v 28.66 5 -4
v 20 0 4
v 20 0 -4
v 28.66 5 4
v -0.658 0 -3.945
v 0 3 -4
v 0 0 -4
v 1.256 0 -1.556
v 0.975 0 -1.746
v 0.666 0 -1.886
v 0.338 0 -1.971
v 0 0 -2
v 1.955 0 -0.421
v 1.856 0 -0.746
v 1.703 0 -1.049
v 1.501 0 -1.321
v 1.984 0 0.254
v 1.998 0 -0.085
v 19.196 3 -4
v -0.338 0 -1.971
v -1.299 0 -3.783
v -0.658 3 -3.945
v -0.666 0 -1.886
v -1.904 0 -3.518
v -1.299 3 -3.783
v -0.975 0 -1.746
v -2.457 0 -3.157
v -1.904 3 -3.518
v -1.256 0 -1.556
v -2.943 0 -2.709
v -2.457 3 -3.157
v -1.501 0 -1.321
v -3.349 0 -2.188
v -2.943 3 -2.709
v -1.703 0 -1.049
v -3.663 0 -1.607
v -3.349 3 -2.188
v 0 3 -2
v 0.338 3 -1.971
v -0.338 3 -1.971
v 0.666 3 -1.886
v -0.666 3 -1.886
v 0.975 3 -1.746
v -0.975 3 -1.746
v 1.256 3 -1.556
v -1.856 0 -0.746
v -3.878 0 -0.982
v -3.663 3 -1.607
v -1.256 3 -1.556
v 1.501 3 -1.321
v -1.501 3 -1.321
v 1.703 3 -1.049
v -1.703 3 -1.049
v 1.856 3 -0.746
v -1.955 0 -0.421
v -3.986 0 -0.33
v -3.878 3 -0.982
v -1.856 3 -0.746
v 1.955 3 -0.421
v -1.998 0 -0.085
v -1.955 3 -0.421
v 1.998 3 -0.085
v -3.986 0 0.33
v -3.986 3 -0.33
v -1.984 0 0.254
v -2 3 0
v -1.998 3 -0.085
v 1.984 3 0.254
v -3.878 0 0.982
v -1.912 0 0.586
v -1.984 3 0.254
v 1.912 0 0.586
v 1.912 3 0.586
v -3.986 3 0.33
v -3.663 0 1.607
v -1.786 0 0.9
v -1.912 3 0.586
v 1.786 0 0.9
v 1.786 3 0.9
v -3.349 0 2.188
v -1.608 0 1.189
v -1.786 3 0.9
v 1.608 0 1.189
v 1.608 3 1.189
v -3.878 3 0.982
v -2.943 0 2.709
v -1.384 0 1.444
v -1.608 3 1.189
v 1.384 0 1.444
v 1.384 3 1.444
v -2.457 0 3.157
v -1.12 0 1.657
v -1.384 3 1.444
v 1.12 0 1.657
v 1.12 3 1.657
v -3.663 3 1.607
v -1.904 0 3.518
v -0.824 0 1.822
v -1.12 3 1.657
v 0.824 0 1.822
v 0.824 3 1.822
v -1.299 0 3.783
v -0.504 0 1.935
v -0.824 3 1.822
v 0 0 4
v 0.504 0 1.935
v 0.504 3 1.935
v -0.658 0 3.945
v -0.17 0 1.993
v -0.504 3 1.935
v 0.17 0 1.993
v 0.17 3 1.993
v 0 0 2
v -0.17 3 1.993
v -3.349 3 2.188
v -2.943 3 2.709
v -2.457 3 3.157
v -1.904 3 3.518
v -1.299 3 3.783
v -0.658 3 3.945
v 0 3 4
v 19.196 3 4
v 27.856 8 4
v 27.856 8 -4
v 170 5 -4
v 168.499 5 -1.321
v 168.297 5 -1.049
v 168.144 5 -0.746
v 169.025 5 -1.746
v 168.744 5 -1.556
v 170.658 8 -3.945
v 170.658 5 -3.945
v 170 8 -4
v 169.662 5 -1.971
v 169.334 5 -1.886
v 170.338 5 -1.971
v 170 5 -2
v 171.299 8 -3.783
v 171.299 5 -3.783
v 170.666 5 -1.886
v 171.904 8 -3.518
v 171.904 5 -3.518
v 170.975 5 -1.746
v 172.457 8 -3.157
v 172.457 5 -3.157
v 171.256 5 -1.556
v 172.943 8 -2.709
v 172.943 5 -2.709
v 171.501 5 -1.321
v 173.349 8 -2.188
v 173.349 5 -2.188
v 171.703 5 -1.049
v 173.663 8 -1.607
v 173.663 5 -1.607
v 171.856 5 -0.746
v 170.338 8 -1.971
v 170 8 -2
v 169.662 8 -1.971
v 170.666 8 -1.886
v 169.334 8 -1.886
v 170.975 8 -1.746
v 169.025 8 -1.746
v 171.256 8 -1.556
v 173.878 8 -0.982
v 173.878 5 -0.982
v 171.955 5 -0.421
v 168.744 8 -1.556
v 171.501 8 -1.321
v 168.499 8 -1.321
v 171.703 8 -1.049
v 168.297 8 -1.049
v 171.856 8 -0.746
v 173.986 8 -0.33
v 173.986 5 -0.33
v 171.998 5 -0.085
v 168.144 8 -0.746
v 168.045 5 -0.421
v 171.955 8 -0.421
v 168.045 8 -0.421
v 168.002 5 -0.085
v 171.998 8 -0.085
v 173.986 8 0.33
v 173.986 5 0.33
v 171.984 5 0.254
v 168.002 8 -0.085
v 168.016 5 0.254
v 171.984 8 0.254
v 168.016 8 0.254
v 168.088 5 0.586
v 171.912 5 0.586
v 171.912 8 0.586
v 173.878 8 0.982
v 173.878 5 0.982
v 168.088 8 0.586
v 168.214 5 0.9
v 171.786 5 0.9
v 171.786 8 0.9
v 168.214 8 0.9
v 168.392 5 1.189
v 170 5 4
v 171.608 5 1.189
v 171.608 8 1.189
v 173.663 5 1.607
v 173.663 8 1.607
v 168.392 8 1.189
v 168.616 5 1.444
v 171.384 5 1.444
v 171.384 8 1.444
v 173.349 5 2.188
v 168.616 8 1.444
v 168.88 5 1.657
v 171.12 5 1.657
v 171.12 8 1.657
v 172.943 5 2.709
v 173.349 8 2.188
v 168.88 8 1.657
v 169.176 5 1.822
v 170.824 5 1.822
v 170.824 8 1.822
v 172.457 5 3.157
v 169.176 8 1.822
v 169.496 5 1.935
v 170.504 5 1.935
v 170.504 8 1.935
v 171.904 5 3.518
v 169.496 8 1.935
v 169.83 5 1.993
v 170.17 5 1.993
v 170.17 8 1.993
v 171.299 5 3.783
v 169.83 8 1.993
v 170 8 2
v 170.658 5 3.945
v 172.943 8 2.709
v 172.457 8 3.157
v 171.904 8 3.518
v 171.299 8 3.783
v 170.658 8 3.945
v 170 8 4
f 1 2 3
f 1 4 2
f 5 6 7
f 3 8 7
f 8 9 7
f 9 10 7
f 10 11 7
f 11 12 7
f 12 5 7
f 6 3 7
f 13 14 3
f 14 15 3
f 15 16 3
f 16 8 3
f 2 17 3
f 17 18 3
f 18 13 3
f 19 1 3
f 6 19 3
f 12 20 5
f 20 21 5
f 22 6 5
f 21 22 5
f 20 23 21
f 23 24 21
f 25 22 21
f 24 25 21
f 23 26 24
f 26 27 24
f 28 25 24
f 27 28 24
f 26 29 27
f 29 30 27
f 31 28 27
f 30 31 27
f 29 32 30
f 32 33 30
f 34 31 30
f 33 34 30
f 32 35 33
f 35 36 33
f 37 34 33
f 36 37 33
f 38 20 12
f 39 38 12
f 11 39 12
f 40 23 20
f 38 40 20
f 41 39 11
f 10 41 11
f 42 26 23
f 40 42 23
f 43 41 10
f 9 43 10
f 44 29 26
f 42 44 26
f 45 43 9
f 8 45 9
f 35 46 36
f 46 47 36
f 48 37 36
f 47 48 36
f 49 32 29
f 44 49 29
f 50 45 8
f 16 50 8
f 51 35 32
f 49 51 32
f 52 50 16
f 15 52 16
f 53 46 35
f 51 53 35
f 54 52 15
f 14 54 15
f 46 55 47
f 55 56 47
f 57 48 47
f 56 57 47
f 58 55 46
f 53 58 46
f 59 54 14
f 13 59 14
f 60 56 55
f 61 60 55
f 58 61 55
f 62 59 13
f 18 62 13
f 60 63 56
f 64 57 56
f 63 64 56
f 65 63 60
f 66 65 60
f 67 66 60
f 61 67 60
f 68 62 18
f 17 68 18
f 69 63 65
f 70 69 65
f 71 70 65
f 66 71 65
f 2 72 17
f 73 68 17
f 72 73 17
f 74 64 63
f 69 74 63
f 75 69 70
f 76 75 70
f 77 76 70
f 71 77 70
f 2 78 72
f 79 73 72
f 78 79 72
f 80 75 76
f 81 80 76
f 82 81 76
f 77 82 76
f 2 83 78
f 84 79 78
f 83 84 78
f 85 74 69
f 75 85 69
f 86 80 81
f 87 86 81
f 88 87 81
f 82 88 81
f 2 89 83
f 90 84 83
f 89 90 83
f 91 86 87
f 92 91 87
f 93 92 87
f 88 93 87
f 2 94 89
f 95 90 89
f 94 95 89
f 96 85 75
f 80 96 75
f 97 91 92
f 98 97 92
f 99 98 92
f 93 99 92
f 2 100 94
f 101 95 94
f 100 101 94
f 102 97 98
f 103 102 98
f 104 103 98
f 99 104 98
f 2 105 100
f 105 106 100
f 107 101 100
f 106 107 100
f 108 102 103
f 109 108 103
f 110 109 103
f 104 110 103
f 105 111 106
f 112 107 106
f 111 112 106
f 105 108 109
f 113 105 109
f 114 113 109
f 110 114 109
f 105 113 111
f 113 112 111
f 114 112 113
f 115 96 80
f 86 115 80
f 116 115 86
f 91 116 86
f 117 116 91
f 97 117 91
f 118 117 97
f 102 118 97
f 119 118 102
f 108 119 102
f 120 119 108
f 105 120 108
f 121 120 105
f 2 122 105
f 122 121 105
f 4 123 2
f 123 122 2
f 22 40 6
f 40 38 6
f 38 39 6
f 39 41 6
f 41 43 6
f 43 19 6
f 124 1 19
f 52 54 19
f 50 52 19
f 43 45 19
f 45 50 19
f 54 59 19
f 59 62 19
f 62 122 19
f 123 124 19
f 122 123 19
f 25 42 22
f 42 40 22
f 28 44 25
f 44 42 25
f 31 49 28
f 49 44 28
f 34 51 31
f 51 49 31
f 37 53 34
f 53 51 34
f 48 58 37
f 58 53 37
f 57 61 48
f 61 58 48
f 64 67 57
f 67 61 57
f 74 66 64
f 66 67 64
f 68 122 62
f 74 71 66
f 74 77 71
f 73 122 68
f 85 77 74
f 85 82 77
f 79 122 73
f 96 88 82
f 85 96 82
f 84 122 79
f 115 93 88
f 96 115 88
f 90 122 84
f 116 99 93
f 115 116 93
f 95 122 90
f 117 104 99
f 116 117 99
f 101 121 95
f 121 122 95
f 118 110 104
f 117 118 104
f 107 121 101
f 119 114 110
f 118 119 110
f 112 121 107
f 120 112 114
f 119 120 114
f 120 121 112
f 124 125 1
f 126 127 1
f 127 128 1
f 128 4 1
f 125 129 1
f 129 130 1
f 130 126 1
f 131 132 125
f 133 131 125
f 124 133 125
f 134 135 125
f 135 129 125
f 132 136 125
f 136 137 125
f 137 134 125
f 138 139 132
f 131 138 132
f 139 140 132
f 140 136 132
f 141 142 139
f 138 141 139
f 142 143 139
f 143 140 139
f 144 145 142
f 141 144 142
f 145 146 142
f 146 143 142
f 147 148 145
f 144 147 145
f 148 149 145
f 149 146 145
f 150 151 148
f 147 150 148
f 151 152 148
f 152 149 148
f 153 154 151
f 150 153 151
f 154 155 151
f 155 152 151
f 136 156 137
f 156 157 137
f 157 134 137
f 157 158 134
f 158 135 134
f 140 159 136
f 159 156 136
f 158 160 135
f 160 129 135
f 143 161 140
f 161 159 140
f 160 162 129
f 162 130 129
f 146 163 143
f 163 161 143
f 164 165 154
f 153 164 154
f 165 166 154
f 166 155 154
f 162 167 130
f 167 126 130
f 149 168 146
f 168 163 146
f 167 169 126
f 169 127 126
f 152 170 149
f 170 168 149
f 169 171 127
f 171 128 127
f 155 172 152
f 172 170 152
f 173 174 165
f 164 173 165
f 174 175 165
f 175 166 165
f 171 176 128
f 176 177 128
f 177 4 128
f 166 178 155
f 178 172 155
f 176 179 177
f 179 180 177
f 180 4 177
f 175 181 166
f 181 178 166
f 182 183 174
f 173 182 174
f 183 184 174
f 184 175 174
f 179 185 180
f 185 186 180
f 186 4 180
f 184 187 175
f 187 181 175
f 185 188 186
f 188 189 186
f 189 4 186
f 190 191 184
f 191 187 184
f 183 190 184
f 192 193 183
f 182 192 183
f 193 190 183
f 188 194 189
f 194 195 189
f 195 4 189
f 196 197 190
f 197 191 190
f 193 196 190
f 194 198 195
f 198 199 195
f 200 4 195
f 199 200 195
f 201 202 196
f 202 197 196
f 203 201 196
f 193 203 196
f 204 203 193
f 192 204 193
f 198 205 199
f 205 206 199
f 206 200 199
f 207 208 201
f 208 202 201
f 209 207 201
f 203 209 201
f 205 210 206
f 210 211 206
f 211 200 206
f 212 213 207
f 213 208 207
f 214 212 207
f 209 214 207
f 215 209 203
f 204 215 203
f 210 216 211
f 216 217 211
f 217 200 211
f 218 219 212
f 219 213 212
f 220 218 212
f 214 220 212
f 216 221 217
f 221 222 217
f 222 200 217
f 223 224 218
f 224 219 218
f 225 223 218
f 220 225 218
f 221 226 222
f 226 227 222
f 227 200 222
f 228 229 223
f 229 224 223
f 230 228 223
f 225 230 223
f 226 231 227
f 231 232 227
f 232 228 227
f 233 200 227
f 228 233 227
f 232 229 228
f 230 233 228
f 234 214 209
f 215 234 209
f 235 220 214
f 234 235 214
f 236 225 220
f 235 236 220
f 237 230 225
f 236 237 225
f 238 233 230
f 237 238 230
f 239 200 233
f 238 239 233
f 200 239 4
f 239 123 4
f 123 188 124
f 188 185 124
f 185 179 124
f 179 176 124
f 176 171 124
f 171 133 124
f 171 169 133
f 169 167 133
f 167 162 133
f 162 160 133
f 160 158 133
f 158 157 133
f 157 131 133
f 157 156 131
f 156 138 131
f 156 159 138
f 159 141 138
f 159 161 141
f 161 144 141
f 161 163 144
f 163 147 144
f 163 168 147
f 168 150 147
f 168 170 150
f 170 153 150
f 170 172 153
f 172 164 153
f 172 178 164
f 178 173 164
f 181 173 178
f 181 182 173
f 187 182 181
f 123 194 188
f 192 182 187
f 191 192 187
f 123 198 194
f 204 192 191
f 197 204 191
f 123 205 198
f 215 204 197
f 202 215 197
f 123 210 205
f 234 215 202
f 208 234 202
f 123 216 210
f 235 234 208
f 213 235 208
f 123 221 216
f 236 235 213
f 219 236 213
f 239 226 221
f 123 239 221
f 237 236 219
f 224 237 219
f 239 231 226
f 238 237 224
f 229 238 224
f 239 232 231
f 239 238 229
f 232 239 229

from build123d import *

# Parameters (mm, degrees)
SKETCH1_R           = 2
BOSS_EXTRUDE1_DEPTH = 8
SKETCH2_W           = 4
SKETCH2_H           = 2
SKETCH2_H_2         = 3
CUT_EXTRUDE1_DEPTH  = 8


with BuildPart() as part:
    # Sketch1 → Boss-Extrude1 (new body)
    with BuildSketch(Plane(origin=(0, 0, 0), x_dir=(1, 0, 0), z_dir=(0, 1, 0))):
        with BuildLine():
            Line((170, 4), (0, 4))
            ThreePointArc((0, 4), (-4, 0), (0, -4))
            Line((0, -4), (170, -4))
            ThreePointArc((170, -4), (174, 0), (170, 4))
        make_face()
        with Locations(Location((0, 0, 0), (0, 0, 270))):
            Circle(SKETCH1_R, mode=Mode.SUBTRACT)
        with Locations(Location((170, 0, 0), (0, 0, 270))):
            Circle(SKETCH1_R, mode=Mode.SUBTRACT)
    extrude(amount=BOSS_EXTRUDE1_DEPTH)

    # Sketch2 → Cut-Extrude1 (cut)
    with BuildSketch(Plane.XY.offset(4)):
        Polygon((22.660254038, 5), (0, 5), (0, 3), (19.196152423, 3), align=None)
        with Locations((-2, 4)):
            Rectangle(SKETCH2_W, SKETCH2_H)
        with Locations((-2, 6.5)):
            Rectangle(SKETCH2_W, SKETCH2_H_2)
        Polygon((0, 8), (0, 5), (22.660254038, 5), (27.856406461, 8), align=None)
        Polygon((170, 3), (25.196152423, 3), (20, 0), (170, 0), align=None)
        Polygon((170, 5), (28.660254038, 5), (25.196152423, 3), (170, 3), align=None)
        with Locations((172, 4)):
            Rectangle(SKETCH2_W, SKETCH2_H)
        with Locations((172, 1.5)):
            Rectangle(SKETCH2_W, SKETCH2_H_2)
    extrude(amount=-CUT_EXTRUDE1_DEPTH, mode=Mode.SUBTRACT)


solid = part.part
